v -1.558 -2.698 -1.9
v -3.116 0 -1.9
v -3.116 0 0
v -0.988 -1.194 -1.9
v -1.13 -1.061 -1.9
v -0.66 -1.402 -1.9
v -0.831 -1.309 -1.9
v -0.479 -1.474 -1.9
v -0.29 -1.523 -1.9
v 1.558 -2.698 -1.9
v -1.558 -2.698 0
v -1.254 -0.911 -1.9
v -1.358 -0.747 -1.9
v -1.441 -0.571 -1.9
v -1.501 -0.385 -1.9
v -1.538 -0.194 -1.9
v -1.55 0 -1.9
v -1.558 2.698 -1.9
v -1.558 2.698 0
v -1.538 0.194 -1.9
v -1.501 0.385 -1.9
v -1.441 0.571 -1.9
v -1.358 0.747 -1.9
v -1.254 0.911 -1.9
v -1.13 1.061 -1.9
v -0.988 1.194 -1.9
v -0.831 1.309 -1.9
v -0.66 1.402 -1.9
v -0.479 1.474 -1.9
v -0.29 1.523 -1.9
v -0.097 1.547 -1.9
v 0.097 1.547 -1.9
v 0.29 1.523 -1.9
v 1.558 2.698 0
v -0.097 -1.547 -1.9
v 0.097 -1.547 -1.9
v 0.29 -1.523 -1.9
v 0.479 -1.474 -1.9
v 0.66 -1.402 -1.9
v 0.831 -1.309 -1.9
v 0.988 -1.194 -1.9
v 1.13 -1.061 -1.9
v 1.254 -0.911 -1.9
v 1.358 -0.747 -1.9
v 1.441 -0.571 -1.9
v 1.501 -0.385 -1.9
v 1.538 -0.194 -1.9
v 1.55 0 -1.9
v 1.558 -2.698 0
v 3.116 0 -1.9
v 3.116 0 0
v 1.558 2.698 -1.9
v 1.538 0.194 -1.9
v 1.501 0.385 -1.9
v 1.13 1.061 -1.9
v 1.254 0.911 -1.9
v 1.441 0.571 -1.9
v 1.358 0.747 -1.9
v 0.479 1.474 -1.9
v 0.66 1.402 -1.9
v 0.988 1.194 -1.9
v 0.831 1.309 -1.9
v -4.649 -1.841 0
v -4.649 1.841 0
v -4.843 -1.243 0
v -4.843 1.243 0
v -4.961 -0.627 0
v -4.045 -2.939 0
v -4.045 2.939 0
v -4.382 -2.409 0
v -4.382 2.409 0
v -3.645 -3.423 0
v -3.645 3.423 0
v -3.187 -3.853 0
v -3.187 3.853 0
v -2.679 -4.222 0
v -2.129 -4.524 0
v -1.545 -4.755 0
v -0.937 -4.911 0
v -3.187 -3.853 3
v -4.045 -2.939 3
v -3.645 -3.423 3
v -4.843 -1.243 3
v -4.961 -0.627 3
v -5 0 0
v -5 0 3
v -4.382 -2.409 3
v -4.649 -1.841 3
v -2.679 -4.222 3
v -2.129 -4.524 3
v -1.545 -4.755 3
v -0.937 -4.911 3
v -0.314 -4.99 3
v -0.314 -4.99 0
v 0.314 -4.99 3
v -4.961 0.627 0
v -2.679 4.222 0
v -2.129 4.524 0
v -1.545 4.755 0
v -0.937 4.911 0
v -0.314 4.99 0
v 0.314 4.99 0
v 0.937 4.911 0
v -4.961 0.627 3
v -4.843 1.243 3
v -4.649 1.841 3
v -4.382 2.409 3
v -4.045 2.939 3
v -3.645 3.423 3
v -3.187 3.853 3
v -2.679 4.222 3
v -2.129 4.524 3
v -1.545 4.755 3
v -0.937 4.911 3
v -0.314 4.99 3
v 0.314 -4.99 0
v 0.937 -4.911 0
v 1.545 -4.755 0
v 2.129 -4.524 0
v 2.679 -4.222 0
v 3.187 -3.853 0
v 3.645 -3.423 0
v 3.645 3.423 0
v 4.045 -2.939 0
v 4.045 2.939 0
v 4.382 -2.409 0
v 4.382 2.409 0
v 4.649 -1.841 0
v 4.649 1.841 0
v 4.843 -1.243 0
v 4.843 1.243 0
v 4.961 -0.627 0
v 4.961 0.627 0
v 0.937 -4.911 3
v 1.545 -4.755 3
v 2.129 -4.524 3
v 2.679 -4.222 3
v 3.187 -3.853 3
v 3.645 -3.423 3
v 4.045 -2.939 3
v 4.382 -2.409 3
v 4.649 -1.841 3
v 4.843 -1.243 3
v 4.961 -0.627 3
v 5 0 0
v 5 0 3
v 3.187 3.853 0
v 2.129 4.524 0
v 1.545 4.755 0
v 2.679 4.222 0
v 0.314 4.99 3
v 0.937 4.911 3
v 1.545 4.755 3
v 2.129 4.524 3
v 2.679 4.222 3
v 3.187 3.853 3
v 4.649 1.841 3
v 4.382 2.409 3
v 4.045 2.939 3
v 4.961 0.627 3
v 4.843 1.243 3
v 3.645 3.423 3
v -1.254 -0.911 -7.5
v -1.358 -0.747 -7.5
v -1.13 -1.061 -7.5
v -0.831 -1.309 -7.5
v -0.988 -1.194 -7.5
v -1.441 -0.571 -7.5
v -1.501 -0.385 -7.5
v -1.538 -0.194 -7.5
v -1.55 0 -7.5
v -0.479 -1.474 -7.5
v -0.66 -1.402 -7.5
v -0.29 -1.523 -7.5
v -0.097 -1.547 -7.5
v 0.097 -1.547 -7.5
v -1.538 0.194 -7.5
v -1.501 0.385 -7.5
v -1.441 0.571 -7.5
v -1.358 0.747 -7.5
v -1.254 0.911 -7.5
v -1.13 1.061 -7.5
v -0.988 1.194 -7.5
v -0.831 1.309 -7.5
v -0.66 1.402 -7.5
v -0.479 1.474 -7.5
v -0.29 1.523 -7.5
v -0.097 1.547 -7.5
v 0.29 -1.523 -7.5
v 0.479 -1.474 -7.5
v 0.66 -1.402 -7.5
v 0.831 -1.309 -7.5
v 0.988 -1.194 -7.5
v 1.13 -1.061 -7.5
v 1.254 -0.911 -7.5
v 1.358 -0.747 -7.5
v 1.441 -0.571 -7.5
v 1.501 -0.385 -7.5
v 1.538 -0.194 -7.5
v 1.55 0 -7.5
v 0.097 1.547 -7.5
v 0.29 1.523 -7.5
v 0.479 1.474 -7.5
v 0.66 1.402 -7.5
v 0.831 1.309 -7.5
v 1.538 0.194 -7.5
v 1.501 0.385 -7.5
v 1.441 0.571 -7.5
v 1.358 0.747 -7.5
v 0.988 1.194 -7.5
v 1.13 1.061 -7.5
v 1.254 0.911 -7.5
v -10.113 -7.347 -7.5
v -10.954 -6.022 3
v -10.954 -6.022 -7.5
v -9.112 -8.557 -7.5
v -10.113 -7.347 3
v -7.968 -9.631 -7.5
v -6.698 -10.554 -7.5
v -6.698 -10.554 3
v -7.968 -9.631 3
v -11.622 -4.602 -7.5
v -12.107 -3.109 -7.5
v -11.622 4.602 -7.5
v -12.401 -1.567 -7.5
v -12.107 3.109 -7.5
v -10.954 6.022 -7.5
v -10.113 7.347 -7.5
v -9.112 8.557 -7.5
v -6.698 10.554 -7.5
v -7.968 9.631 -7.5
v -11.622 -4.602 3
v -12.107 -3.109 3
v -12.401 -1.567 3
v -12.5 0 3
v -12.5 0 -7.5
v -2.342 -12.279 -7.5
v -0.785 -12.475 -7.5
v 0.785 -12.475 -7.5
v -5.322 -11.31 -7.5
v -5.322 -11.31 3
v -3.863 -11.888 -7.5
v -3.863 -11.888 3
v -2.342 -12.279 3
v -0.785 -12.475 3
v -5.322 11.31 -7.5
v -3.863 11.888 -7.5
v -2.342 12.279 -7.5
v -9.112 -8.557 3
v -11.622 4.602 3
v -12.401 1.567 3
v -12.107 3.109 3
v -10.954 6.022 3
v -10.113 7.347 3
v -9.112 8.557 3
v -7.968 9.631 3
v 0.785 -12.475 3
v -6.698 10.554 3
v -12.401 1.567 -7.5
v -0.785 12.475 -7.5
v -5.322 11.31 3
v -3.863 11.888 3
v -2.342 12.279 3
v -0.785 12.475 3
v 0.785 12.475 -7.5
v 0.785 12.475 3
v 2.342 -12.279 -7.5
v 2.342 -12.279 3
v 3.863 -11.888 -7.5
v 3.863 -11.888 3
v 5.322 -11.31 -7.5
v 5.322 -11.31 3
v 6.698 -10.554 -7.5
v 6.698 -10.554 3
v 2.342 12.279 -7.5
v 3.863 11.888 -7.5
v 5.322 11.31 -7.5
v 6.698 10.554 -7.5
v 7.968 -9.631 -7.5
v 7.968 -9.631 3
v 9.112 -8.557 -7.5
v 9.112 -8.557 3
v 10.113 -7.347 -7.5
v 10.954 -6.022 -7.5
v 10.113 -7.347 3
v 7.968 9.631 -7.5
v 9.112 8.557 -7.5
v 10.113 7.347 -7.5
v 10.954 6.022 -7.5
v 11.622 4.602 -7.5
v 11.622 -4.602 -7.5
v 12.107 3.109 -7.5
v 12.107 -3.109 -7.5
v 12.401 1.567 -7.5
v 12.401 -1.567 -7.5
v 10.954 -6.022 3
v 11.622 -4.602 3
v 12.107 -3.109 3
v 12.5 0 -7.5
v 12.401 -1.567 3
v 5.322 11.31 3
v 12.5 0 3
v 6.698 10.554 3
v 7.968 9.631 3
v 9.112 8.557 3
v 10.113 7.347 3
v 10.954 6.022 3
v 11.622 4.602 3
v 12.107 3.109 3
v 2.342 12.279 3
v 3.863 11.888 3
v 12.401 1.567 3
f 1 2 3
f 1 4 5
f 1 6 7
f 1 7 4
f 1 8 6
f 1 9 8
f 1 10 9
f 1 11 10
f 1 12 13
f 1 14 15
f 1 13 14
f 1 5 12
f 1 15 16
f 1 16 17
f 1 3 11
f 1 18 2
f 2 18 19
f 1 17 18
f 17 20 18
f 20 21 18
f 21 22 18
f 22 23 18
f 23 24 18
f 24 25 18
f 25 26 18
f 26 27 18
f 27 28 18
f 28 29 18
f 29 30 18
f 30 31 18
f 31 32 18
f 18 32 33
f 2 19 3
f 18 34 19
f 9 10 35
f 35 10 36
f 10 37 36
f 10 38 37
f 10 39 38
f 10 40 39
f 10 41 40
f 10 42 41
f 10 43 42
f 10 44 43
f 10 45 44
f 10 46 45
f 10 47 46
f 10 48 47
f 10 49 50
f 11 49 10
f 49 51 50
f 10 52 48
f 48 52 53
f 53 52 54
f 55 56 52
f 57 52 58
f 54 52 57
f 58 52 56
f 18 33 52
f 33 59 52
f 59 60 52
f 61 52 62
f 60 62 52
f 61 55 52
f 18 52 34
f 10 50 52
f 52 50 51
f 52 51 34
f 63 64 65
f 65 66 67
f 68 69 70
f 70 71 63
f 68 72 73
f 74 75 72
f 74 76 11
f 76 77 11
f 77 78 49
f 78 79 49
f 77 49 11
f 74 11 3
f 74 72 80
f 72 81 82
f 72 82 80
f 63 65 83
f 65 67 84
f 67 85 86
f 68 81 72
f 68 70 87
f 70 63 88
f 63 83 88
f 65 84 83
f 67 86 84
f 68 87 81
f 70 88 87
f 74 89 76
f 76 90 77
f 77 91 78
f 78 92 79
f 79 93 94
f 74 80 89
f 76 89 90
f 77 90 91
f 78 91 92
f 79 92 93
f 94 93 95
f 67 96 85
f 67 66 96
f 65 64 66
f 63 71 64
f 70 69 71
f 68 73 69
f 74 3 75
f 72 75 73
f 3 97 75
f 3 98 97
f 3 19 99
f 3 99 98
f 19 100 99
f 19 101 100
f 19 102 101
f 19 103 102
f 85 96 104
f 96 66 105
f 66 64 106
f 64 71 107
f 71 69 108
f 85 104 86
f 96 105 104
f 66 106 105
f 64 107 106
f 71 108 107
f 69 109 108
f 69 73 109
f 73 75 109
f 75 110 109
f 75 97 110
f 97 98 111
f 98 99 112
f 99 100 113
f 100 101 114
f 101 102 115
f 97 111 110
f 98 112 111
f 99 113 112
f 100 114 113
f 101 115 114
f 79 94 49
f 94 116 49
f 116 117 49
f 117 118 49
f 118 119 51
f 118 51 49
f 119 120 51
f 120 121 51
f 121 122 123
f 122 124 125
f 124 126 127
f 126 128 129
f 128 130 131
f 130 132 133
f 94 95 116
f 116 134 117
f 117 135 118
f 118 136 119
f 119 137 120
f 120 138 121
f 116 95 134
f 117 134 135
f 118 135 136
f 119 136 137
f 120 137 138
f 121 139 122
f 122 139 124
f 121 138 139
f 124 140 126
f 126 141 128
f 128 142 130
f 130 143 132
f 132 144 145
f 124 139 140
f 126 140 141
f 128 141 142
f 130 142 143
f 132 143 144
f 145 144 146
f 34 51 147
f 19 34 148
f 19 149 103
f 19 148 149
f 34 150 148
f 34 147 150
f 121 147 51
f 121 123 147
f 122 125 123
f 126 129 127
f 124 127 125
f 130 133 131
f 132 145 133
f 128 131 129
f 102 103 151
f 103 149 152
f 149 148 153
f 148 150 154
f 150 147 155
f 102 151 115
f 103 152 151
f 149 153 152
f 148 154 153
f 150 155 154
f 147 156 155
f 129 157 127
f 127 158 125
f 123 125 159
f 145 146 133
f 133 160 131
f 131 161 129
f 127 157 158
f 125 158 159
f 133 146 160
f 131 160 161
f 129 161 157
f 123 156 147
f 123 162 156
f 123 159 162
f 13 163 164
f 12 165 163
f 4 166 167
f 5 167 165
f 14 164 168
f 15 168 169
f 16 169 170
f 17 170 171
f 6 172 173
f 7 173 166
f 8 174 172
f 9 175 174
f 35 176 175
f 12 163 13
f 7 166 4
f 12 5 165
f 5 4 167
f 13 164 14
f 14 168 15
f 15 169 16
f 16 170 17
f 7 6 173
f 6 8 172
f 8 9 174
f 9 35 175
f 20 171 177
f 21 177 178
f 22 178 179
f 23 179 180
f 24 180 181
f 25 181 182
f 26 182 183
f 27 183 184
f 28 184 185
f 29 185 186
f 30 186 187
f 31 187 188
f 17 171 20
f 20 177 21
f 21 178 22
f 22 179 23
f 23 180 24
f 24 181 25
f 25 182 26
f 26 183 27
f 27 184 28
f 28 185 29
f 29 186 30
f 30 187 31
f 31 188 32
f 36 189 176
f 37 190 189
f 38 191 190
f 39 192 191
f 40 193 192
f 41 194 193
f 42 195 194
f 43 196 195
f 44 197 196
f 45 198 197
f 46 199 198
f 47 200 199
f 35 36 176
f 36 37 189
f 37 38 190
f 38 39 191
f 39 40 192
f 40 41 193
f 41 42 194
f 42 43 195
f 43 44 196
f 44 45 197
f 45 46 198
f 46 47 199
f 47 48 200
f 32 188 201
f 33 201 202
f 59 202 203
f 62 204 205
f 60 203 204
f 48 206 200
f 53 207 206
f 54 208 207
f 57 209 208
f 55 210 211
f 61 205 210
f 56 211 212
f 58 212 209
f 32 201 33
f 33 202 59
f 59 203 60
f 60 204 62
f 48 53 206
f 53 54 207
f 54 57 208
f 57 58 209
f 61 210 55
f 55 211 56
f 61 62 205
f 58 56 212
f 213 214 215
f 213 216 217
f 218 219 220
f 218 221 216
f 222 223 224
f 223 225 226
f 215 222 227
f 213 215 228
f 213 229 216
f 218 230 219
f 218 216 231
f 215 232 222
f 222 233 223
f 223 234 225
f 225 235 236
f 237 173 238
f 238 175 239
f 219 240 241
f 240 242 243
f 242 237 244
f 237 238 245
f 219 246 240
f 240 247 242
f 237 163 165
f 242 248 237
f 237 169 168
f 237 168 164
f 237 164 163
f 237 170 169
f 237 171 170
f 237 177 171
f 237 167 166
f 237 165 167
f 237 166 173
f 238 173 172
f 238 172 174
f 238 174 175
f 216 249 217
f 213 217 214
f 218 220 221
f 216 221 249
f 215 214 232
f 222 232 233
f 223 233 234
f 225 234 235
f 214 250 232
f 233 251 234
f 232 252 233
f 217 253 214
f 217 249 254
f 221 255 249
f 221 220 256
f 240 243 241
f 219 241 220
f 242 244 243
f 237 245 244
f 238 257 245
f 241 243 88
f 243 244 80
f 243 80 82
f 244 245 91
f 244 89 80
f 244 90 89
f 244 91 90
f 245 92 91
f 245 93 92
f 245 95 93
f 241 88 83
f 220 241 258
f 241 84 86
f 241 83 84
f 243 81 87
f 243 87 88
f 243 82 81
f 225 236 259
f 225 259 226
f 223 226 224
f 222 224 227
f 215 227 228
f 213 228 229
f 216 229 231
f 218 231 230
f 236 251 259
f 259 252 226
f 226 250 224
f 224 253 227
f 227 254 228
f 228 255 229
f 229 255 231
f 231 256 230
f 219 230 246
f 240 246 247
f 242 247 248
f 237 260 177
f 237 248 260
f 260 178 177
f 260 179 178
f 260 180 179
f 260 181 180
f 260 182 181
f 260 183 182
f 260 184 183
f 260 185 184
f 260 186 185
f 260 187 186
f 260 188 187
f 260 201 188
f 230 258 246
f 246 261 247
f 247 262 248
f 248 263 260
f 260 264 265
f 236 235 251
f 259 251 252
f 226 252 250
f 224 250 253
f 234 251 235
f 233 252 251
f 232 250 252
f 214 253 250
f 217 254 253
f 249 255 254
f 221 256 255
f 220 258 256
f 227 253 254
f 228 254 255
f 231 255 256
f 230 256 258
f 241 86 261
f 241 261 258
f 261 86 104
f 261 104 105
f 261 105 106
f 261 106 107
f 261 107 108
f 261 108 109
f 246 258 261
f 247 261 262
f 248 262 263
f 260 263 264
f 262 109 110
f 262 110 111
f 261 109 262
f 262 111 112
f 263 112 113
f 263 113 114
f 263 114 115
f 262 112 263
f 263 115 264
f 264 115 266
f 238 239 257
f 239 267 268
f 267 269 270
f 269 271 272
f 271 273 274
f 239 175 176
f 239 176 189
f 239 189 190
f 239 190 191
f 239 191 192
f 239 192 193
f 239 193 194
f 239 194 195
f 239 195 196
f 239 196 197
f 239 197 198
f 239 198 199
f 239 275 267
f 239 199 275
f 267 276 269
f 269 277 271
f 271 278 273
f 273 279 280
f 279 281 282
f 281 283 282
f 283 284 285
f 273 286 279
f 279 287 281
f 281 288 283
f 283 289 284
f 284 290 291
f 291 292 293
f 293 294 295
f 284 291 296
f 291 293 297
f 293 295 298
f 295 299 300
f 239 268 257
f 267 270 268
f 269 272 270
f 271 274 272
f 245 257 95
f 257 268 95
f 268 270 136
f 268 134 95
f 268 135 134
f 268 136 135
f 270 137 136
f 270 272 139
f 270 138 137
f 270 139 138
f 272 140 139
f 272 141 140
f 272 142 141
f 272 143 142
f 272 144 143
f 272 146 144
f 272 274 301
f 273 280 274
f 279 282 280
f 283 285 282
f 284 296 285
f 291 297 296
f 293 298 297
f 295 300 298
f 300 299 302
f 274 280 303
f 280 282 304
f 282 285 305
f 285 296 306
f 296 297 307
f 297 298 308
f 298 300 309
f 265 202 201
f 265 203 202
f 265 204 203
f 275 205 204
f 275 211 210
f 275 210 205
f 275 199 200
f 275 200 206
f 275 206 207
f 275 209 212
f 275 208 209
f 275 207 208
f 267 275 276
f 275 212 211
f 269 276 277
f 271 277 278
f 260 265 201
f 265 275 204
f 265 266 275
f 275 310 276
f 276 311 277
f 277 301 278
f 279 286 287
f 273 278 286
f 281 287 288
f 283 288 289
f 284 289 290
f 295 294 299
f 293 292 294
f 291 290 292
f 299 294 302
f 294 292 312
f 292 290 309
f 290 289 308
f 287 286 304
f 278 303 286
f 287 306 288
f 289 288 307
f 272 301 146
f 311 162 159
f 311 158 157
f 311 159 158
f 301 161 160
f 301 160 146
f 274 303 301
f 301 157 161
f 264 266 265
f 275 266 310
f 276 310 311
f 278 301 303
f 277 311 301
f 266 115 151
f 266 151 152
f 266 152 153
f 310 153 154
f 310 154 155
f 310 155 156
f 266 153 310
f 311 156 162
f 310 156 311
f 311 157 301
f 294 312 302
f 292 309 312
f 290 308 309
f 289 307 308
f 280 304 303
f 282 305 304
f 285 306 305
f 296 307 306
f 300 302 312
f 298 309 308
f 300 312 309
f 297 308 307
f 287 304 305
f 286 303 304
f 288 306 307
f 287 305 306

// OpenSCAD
$fn = 50;

difference() {
	union() {
		translate(v = [0, 0, -7.5]) {
			cylinder(h = 10.5, r = 12.5);
		}
	}
	union() {
		translate(v = [0, 0, 0]) {
			rotate(a = [0, 0, 0]) {
				difference() {
					union() {
						translate(v = [0, 0, -1.9]) {
							linear_extrude(height = 1.9) {
								polygon(points = [[3.1158, 0.0], [1.5579000000000005, 2.698361953111554], [-1.5578999999999994, 2.6983619531115544], [-3.1158, 3.815754496783323e-16], [-1.5579000000000014, -2.6983619531115535], [1.557899999999998, -2.6983619531115552]]);
							}
						}
					}
					union();
				}
			}
		}
		#cylinder(h = 3, r = 5.0);
		#translate(v = [0, 0, -100.0]) {
			cylinder(h = 200, r = 1.55);
		}
	}
}
